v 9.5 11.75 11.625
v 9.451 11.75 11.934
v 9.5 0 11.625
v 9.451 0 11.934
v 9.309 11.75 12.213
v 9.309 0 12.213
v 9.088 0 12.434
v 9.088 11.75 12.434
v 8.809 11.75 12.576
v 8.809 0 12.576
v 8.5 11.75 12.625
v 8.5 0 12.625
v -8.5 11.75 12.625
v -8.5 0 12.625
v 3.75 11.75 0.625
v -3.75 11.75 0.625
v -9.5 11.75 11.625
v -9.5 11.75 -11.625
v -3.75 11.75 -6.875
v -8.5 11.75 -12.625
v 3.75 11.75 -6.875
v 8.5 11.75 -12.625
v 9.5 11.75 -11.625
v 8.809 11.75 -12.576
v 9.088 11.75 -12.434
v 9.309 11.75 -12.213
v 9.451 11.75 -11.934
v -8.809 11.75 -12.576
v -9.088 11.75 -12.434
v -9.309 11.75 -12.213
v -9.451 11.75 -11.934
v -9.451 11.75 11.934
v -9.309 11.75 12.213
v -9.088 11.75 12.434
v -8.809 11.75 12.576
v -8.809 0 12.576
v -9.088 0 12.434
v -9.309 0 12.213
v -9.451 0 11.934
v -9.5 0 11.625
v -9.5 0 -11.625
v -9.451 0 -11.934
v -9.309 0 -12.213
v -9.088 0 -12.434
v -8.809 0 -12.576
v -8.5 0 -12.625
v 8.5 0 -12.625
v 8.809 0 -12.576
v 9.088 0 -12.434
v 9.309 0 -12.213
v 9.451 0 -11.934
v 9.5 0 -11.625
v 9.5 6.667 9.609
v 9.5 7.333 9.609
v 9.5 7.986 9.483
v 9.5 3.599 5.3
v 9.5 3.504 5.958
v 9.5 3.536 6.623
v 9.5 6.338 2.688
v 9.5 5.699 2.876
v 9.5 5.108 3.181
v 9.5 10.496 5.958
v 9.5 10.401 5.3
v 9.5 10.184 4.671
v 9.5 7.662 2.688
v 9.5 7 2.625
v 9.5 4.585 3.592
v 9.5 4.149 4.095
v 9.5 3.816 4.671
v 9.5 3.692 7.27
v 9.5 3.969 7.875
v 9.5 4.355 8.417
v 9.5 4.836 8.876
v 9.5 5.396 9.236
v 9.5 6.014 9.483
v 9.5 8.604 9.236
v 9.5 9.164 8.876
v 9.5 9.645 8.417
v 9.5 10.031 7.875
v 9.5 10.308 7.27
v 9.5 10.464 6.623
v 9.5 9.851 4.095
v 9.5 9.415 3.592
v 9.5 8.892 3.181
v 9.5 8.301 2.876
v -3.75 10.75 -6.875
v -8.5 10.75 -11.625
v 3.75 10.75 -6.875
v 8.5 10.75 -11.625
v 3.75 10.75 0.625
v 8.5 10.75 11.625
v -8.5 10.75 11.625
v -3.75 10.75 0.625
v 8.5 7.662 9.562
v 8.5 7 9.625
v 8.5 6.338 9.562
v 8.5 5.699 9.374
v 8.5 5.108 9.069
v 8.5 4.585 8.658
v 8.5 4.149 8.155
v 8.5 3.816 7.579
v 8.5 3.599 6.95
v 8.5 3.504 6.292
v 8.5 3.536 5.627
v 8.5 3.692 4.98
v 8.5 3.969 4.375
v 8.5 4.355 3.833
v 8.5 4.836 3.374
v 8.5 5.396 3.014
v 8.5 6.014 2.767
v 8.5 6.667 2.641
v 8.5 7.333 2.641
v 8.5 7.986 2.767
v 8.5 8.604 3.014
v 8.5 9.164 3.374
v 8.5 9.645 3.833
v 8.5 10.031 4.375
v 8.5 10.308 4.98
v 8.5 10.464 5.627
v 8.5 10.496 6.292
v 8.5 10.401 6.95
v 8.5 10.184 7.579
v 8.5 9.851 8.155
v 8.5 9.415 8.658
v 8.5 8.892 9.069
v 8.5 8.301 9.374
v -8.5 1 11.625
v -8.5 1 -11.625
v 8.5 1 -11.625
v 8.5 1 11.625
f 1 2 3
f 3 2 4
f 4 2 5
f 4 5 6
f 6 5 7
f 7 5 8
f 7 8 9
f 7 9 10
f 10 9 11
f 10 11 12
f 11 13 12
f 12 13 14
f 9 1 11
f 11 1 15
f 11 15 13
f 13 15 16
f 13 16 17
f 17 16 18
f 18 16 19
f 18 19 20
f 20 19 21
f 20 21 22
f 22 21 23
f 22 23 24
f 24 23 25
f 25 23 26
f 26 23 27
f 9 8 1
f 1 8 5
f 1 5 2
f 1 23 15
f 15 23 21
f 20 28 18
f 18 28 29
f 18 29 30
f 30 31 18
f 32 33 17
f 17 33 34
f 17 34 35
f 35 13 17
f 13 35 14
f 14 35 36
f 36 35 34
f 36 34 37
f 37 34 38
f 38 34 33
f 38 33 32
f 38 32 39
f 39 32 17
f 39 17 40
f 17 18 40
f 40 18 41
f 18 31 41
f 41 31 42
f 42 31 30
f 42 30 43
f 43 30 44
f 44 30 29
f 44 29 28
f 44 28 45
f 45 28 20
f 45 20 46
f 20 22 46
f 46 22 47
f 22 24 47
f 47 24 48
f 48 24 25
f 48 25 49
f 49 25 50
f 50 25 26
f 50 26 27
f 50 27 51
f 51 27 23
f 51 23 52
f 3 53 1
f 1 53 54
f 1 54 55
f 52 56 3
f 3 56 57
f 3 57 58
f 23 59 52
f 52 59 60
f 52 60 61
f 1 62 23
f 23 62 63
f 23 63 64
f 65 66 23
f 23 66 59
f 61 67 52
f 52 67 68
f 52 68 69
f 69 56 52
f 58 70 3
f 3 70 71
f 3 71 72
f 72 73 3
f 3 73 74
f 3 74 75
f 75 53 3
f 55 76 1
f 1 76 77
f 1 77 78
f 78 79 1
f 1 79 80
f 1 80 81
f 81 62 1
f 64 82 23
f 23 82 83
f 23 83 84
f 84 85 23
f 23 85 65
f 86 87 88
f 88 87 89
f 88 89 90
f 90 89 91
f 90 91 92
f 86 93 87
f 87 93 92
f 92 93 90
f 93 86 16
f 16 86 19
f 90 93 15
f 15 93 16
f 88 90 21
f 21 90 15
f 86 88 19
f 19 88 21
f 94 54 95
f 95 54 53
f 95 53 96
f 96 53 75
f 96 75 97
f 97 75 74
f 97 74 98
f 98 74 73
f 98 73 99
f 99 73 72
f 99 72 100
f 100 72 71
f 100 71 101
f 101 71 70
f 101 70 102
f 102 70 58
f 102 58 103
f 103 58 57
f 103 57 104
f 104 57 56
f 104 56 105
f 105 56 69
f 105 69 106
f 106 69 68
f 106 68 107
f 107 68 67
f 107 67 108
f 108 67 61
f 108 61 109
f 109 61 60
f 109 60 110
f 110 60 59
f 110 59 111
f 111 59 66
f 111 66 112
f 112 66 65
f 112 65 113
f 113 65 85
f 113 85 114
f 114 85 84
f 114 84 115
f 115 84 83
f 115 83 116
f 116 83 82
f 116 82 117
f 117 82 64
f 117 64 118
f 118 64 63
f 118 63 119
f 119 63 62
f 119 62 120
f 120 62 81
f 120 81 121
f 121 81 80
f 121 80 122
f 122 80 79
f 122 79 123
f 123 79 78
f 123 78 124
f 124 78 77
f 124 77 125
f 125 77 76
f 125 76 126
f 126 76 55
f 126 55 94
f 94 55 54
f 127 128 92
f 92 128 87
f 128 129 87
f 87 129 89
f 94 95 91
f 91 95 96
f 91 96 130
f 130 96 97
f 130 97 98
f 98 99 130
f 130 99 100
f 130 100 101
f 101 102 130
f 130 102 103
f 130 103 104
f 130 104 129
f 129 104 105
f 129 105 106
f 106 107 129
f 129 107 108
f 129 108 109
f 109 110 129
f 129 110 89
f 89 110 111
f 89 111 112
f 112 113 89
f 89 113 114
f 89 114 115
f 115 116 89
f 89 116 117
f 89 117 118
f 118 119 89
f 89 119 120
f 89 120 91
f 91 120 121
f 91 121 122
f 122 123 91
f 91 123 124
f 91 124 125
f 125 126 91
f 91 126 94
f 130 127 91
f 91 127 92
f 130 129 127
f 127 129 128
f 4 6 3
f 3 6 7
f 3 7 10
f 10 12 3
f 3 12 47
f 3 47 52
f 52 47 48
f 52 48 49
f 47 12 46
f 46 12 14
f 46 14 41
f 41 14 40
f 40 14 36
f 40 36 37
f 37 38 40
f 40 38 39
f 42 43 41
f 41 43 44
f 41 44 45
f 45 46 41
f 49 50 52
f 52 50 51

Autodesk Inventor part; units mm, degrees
ref_plane "YZ Plane" through (0, 0, 0) normal (1, 0, 0) x (0, 1, 0)
ref_plane "XZ Plane" through (0, 0, 0) normal (0, 1, 0) x (-1, 0, 0)
ref_plane "XY Plane" through (0, 0, 0) normal (0, 0, 1) x (1, 0, 0)
sketch "Sketch1" plane through (0, 0, 0) normal (0, 1, 0) x (-1, 0, 0)
  line L0 (-9.5, -12.625) -> (9.5, -12.625)
  line L1 (9.5, -12.625) -> (9.5, 12.625)
  line L2 (9.5, 12.625) -> (-9.5, 12.625)
  line L3 (-9.5, 12.625) -> (-9.5, -12.625)
  line L4 (-9.5, -12.625) -> (9.5, 12.625) construction
  line L5 (9.5, -12.625) -> (-9.5, 12.625) construction
  point P0 (0, 0)
  dimension "d0" = 19
  dimension "d1" = 25.25
extrude "Extrusion1" add sketch "Sketch1" along normal blind 10.75
shell "Shell1" thickness 1 removed faces 1 at (3.1667, 10.75, 4.2083)
sketch "Sketch2" plane through (9.5, 0, 12.625) normal (1, 0, 0) x (0, 0, -1)
  line L0 (1, 1) -> (24.25, 1) projected
  circle A0 centre (6.5, 7) radius 3.5
  line L1 (1, 1) -> (1, 10.75) projected
  line L2 (2, 3.75) -> (5.201, 3.75)
  line L3 (7.799, 3.75) -> (24, 3.75)
  point P0 (12.625, 0)
  dimension "d6" = 7
  dimension "d8" = 2
extrude "Extrusion2" cut sketch "Sketch2" against normal blind 10.75
sketch "Sketch3" plane through (0, 10.75, 0) normal (0, 1, 0) x (1, 0, 0)
  line L0 (-8.5, -11.625) -> (-8.5, 11.625) projected
  line L1 (-8.5, 11.625) -> (8.5, 11.625) projected
  line L2 (-9.5, -12.625) -> (9.5, -12.625) projected
  line L3 (9.5, -12.625) -> (9.5, 12.625) projected
  line L4 (9.5, 12.625) -> (-9.5, 12.625) projected
  line L5 (-9.5, 12.625) -> (-9.5, -12.625) projected
  line L6 (-9.5, -12.625) -> (9.5, -12.625)
  line L7 (9.5, -12.625) -> (9.5, 12.625)
  line L8 (9.5, 12.625) -> (-9.5, 12.625)
  line L9 (-9.5, 12.625) -> (-9.5, -12.625)
  line L10 (3.75, 6.875) -> (-3.75, 6.875)
  line L11 (-3.75, 6.875) -> (-3.75, -0.625)
  line L12 (-3.75, -0.625) -> (3.75, -0.625)
  line L13 (3.75, -0.625) -> (3.75, 6.875)
  line L14 (3.75, 6.875) -> (-3.75, -0.625) construction
  line L15 (-3.75, 6.875) -> (3.75, -0.625) construction
  point P0 (0, 0)
  point P1 (0, 3.125)
  dimension "d11" = 8.5
  dimension "d12" = 8.5
  dimension "d13" = 7.5
  dimension "d14" = 7.5
extrude "Extrusion3" add sketch "Sketch3" along normal blind 1
fillet "Fillet1" radius 1 4 edges at (9.5, 5.875, -12.625) (-9.5, 5.875, -12.625) (-9.5, 5.875, 12.625) (9.5, 5.875, 12.625)
properties part number "carcasaXeotype_BUTTON"
